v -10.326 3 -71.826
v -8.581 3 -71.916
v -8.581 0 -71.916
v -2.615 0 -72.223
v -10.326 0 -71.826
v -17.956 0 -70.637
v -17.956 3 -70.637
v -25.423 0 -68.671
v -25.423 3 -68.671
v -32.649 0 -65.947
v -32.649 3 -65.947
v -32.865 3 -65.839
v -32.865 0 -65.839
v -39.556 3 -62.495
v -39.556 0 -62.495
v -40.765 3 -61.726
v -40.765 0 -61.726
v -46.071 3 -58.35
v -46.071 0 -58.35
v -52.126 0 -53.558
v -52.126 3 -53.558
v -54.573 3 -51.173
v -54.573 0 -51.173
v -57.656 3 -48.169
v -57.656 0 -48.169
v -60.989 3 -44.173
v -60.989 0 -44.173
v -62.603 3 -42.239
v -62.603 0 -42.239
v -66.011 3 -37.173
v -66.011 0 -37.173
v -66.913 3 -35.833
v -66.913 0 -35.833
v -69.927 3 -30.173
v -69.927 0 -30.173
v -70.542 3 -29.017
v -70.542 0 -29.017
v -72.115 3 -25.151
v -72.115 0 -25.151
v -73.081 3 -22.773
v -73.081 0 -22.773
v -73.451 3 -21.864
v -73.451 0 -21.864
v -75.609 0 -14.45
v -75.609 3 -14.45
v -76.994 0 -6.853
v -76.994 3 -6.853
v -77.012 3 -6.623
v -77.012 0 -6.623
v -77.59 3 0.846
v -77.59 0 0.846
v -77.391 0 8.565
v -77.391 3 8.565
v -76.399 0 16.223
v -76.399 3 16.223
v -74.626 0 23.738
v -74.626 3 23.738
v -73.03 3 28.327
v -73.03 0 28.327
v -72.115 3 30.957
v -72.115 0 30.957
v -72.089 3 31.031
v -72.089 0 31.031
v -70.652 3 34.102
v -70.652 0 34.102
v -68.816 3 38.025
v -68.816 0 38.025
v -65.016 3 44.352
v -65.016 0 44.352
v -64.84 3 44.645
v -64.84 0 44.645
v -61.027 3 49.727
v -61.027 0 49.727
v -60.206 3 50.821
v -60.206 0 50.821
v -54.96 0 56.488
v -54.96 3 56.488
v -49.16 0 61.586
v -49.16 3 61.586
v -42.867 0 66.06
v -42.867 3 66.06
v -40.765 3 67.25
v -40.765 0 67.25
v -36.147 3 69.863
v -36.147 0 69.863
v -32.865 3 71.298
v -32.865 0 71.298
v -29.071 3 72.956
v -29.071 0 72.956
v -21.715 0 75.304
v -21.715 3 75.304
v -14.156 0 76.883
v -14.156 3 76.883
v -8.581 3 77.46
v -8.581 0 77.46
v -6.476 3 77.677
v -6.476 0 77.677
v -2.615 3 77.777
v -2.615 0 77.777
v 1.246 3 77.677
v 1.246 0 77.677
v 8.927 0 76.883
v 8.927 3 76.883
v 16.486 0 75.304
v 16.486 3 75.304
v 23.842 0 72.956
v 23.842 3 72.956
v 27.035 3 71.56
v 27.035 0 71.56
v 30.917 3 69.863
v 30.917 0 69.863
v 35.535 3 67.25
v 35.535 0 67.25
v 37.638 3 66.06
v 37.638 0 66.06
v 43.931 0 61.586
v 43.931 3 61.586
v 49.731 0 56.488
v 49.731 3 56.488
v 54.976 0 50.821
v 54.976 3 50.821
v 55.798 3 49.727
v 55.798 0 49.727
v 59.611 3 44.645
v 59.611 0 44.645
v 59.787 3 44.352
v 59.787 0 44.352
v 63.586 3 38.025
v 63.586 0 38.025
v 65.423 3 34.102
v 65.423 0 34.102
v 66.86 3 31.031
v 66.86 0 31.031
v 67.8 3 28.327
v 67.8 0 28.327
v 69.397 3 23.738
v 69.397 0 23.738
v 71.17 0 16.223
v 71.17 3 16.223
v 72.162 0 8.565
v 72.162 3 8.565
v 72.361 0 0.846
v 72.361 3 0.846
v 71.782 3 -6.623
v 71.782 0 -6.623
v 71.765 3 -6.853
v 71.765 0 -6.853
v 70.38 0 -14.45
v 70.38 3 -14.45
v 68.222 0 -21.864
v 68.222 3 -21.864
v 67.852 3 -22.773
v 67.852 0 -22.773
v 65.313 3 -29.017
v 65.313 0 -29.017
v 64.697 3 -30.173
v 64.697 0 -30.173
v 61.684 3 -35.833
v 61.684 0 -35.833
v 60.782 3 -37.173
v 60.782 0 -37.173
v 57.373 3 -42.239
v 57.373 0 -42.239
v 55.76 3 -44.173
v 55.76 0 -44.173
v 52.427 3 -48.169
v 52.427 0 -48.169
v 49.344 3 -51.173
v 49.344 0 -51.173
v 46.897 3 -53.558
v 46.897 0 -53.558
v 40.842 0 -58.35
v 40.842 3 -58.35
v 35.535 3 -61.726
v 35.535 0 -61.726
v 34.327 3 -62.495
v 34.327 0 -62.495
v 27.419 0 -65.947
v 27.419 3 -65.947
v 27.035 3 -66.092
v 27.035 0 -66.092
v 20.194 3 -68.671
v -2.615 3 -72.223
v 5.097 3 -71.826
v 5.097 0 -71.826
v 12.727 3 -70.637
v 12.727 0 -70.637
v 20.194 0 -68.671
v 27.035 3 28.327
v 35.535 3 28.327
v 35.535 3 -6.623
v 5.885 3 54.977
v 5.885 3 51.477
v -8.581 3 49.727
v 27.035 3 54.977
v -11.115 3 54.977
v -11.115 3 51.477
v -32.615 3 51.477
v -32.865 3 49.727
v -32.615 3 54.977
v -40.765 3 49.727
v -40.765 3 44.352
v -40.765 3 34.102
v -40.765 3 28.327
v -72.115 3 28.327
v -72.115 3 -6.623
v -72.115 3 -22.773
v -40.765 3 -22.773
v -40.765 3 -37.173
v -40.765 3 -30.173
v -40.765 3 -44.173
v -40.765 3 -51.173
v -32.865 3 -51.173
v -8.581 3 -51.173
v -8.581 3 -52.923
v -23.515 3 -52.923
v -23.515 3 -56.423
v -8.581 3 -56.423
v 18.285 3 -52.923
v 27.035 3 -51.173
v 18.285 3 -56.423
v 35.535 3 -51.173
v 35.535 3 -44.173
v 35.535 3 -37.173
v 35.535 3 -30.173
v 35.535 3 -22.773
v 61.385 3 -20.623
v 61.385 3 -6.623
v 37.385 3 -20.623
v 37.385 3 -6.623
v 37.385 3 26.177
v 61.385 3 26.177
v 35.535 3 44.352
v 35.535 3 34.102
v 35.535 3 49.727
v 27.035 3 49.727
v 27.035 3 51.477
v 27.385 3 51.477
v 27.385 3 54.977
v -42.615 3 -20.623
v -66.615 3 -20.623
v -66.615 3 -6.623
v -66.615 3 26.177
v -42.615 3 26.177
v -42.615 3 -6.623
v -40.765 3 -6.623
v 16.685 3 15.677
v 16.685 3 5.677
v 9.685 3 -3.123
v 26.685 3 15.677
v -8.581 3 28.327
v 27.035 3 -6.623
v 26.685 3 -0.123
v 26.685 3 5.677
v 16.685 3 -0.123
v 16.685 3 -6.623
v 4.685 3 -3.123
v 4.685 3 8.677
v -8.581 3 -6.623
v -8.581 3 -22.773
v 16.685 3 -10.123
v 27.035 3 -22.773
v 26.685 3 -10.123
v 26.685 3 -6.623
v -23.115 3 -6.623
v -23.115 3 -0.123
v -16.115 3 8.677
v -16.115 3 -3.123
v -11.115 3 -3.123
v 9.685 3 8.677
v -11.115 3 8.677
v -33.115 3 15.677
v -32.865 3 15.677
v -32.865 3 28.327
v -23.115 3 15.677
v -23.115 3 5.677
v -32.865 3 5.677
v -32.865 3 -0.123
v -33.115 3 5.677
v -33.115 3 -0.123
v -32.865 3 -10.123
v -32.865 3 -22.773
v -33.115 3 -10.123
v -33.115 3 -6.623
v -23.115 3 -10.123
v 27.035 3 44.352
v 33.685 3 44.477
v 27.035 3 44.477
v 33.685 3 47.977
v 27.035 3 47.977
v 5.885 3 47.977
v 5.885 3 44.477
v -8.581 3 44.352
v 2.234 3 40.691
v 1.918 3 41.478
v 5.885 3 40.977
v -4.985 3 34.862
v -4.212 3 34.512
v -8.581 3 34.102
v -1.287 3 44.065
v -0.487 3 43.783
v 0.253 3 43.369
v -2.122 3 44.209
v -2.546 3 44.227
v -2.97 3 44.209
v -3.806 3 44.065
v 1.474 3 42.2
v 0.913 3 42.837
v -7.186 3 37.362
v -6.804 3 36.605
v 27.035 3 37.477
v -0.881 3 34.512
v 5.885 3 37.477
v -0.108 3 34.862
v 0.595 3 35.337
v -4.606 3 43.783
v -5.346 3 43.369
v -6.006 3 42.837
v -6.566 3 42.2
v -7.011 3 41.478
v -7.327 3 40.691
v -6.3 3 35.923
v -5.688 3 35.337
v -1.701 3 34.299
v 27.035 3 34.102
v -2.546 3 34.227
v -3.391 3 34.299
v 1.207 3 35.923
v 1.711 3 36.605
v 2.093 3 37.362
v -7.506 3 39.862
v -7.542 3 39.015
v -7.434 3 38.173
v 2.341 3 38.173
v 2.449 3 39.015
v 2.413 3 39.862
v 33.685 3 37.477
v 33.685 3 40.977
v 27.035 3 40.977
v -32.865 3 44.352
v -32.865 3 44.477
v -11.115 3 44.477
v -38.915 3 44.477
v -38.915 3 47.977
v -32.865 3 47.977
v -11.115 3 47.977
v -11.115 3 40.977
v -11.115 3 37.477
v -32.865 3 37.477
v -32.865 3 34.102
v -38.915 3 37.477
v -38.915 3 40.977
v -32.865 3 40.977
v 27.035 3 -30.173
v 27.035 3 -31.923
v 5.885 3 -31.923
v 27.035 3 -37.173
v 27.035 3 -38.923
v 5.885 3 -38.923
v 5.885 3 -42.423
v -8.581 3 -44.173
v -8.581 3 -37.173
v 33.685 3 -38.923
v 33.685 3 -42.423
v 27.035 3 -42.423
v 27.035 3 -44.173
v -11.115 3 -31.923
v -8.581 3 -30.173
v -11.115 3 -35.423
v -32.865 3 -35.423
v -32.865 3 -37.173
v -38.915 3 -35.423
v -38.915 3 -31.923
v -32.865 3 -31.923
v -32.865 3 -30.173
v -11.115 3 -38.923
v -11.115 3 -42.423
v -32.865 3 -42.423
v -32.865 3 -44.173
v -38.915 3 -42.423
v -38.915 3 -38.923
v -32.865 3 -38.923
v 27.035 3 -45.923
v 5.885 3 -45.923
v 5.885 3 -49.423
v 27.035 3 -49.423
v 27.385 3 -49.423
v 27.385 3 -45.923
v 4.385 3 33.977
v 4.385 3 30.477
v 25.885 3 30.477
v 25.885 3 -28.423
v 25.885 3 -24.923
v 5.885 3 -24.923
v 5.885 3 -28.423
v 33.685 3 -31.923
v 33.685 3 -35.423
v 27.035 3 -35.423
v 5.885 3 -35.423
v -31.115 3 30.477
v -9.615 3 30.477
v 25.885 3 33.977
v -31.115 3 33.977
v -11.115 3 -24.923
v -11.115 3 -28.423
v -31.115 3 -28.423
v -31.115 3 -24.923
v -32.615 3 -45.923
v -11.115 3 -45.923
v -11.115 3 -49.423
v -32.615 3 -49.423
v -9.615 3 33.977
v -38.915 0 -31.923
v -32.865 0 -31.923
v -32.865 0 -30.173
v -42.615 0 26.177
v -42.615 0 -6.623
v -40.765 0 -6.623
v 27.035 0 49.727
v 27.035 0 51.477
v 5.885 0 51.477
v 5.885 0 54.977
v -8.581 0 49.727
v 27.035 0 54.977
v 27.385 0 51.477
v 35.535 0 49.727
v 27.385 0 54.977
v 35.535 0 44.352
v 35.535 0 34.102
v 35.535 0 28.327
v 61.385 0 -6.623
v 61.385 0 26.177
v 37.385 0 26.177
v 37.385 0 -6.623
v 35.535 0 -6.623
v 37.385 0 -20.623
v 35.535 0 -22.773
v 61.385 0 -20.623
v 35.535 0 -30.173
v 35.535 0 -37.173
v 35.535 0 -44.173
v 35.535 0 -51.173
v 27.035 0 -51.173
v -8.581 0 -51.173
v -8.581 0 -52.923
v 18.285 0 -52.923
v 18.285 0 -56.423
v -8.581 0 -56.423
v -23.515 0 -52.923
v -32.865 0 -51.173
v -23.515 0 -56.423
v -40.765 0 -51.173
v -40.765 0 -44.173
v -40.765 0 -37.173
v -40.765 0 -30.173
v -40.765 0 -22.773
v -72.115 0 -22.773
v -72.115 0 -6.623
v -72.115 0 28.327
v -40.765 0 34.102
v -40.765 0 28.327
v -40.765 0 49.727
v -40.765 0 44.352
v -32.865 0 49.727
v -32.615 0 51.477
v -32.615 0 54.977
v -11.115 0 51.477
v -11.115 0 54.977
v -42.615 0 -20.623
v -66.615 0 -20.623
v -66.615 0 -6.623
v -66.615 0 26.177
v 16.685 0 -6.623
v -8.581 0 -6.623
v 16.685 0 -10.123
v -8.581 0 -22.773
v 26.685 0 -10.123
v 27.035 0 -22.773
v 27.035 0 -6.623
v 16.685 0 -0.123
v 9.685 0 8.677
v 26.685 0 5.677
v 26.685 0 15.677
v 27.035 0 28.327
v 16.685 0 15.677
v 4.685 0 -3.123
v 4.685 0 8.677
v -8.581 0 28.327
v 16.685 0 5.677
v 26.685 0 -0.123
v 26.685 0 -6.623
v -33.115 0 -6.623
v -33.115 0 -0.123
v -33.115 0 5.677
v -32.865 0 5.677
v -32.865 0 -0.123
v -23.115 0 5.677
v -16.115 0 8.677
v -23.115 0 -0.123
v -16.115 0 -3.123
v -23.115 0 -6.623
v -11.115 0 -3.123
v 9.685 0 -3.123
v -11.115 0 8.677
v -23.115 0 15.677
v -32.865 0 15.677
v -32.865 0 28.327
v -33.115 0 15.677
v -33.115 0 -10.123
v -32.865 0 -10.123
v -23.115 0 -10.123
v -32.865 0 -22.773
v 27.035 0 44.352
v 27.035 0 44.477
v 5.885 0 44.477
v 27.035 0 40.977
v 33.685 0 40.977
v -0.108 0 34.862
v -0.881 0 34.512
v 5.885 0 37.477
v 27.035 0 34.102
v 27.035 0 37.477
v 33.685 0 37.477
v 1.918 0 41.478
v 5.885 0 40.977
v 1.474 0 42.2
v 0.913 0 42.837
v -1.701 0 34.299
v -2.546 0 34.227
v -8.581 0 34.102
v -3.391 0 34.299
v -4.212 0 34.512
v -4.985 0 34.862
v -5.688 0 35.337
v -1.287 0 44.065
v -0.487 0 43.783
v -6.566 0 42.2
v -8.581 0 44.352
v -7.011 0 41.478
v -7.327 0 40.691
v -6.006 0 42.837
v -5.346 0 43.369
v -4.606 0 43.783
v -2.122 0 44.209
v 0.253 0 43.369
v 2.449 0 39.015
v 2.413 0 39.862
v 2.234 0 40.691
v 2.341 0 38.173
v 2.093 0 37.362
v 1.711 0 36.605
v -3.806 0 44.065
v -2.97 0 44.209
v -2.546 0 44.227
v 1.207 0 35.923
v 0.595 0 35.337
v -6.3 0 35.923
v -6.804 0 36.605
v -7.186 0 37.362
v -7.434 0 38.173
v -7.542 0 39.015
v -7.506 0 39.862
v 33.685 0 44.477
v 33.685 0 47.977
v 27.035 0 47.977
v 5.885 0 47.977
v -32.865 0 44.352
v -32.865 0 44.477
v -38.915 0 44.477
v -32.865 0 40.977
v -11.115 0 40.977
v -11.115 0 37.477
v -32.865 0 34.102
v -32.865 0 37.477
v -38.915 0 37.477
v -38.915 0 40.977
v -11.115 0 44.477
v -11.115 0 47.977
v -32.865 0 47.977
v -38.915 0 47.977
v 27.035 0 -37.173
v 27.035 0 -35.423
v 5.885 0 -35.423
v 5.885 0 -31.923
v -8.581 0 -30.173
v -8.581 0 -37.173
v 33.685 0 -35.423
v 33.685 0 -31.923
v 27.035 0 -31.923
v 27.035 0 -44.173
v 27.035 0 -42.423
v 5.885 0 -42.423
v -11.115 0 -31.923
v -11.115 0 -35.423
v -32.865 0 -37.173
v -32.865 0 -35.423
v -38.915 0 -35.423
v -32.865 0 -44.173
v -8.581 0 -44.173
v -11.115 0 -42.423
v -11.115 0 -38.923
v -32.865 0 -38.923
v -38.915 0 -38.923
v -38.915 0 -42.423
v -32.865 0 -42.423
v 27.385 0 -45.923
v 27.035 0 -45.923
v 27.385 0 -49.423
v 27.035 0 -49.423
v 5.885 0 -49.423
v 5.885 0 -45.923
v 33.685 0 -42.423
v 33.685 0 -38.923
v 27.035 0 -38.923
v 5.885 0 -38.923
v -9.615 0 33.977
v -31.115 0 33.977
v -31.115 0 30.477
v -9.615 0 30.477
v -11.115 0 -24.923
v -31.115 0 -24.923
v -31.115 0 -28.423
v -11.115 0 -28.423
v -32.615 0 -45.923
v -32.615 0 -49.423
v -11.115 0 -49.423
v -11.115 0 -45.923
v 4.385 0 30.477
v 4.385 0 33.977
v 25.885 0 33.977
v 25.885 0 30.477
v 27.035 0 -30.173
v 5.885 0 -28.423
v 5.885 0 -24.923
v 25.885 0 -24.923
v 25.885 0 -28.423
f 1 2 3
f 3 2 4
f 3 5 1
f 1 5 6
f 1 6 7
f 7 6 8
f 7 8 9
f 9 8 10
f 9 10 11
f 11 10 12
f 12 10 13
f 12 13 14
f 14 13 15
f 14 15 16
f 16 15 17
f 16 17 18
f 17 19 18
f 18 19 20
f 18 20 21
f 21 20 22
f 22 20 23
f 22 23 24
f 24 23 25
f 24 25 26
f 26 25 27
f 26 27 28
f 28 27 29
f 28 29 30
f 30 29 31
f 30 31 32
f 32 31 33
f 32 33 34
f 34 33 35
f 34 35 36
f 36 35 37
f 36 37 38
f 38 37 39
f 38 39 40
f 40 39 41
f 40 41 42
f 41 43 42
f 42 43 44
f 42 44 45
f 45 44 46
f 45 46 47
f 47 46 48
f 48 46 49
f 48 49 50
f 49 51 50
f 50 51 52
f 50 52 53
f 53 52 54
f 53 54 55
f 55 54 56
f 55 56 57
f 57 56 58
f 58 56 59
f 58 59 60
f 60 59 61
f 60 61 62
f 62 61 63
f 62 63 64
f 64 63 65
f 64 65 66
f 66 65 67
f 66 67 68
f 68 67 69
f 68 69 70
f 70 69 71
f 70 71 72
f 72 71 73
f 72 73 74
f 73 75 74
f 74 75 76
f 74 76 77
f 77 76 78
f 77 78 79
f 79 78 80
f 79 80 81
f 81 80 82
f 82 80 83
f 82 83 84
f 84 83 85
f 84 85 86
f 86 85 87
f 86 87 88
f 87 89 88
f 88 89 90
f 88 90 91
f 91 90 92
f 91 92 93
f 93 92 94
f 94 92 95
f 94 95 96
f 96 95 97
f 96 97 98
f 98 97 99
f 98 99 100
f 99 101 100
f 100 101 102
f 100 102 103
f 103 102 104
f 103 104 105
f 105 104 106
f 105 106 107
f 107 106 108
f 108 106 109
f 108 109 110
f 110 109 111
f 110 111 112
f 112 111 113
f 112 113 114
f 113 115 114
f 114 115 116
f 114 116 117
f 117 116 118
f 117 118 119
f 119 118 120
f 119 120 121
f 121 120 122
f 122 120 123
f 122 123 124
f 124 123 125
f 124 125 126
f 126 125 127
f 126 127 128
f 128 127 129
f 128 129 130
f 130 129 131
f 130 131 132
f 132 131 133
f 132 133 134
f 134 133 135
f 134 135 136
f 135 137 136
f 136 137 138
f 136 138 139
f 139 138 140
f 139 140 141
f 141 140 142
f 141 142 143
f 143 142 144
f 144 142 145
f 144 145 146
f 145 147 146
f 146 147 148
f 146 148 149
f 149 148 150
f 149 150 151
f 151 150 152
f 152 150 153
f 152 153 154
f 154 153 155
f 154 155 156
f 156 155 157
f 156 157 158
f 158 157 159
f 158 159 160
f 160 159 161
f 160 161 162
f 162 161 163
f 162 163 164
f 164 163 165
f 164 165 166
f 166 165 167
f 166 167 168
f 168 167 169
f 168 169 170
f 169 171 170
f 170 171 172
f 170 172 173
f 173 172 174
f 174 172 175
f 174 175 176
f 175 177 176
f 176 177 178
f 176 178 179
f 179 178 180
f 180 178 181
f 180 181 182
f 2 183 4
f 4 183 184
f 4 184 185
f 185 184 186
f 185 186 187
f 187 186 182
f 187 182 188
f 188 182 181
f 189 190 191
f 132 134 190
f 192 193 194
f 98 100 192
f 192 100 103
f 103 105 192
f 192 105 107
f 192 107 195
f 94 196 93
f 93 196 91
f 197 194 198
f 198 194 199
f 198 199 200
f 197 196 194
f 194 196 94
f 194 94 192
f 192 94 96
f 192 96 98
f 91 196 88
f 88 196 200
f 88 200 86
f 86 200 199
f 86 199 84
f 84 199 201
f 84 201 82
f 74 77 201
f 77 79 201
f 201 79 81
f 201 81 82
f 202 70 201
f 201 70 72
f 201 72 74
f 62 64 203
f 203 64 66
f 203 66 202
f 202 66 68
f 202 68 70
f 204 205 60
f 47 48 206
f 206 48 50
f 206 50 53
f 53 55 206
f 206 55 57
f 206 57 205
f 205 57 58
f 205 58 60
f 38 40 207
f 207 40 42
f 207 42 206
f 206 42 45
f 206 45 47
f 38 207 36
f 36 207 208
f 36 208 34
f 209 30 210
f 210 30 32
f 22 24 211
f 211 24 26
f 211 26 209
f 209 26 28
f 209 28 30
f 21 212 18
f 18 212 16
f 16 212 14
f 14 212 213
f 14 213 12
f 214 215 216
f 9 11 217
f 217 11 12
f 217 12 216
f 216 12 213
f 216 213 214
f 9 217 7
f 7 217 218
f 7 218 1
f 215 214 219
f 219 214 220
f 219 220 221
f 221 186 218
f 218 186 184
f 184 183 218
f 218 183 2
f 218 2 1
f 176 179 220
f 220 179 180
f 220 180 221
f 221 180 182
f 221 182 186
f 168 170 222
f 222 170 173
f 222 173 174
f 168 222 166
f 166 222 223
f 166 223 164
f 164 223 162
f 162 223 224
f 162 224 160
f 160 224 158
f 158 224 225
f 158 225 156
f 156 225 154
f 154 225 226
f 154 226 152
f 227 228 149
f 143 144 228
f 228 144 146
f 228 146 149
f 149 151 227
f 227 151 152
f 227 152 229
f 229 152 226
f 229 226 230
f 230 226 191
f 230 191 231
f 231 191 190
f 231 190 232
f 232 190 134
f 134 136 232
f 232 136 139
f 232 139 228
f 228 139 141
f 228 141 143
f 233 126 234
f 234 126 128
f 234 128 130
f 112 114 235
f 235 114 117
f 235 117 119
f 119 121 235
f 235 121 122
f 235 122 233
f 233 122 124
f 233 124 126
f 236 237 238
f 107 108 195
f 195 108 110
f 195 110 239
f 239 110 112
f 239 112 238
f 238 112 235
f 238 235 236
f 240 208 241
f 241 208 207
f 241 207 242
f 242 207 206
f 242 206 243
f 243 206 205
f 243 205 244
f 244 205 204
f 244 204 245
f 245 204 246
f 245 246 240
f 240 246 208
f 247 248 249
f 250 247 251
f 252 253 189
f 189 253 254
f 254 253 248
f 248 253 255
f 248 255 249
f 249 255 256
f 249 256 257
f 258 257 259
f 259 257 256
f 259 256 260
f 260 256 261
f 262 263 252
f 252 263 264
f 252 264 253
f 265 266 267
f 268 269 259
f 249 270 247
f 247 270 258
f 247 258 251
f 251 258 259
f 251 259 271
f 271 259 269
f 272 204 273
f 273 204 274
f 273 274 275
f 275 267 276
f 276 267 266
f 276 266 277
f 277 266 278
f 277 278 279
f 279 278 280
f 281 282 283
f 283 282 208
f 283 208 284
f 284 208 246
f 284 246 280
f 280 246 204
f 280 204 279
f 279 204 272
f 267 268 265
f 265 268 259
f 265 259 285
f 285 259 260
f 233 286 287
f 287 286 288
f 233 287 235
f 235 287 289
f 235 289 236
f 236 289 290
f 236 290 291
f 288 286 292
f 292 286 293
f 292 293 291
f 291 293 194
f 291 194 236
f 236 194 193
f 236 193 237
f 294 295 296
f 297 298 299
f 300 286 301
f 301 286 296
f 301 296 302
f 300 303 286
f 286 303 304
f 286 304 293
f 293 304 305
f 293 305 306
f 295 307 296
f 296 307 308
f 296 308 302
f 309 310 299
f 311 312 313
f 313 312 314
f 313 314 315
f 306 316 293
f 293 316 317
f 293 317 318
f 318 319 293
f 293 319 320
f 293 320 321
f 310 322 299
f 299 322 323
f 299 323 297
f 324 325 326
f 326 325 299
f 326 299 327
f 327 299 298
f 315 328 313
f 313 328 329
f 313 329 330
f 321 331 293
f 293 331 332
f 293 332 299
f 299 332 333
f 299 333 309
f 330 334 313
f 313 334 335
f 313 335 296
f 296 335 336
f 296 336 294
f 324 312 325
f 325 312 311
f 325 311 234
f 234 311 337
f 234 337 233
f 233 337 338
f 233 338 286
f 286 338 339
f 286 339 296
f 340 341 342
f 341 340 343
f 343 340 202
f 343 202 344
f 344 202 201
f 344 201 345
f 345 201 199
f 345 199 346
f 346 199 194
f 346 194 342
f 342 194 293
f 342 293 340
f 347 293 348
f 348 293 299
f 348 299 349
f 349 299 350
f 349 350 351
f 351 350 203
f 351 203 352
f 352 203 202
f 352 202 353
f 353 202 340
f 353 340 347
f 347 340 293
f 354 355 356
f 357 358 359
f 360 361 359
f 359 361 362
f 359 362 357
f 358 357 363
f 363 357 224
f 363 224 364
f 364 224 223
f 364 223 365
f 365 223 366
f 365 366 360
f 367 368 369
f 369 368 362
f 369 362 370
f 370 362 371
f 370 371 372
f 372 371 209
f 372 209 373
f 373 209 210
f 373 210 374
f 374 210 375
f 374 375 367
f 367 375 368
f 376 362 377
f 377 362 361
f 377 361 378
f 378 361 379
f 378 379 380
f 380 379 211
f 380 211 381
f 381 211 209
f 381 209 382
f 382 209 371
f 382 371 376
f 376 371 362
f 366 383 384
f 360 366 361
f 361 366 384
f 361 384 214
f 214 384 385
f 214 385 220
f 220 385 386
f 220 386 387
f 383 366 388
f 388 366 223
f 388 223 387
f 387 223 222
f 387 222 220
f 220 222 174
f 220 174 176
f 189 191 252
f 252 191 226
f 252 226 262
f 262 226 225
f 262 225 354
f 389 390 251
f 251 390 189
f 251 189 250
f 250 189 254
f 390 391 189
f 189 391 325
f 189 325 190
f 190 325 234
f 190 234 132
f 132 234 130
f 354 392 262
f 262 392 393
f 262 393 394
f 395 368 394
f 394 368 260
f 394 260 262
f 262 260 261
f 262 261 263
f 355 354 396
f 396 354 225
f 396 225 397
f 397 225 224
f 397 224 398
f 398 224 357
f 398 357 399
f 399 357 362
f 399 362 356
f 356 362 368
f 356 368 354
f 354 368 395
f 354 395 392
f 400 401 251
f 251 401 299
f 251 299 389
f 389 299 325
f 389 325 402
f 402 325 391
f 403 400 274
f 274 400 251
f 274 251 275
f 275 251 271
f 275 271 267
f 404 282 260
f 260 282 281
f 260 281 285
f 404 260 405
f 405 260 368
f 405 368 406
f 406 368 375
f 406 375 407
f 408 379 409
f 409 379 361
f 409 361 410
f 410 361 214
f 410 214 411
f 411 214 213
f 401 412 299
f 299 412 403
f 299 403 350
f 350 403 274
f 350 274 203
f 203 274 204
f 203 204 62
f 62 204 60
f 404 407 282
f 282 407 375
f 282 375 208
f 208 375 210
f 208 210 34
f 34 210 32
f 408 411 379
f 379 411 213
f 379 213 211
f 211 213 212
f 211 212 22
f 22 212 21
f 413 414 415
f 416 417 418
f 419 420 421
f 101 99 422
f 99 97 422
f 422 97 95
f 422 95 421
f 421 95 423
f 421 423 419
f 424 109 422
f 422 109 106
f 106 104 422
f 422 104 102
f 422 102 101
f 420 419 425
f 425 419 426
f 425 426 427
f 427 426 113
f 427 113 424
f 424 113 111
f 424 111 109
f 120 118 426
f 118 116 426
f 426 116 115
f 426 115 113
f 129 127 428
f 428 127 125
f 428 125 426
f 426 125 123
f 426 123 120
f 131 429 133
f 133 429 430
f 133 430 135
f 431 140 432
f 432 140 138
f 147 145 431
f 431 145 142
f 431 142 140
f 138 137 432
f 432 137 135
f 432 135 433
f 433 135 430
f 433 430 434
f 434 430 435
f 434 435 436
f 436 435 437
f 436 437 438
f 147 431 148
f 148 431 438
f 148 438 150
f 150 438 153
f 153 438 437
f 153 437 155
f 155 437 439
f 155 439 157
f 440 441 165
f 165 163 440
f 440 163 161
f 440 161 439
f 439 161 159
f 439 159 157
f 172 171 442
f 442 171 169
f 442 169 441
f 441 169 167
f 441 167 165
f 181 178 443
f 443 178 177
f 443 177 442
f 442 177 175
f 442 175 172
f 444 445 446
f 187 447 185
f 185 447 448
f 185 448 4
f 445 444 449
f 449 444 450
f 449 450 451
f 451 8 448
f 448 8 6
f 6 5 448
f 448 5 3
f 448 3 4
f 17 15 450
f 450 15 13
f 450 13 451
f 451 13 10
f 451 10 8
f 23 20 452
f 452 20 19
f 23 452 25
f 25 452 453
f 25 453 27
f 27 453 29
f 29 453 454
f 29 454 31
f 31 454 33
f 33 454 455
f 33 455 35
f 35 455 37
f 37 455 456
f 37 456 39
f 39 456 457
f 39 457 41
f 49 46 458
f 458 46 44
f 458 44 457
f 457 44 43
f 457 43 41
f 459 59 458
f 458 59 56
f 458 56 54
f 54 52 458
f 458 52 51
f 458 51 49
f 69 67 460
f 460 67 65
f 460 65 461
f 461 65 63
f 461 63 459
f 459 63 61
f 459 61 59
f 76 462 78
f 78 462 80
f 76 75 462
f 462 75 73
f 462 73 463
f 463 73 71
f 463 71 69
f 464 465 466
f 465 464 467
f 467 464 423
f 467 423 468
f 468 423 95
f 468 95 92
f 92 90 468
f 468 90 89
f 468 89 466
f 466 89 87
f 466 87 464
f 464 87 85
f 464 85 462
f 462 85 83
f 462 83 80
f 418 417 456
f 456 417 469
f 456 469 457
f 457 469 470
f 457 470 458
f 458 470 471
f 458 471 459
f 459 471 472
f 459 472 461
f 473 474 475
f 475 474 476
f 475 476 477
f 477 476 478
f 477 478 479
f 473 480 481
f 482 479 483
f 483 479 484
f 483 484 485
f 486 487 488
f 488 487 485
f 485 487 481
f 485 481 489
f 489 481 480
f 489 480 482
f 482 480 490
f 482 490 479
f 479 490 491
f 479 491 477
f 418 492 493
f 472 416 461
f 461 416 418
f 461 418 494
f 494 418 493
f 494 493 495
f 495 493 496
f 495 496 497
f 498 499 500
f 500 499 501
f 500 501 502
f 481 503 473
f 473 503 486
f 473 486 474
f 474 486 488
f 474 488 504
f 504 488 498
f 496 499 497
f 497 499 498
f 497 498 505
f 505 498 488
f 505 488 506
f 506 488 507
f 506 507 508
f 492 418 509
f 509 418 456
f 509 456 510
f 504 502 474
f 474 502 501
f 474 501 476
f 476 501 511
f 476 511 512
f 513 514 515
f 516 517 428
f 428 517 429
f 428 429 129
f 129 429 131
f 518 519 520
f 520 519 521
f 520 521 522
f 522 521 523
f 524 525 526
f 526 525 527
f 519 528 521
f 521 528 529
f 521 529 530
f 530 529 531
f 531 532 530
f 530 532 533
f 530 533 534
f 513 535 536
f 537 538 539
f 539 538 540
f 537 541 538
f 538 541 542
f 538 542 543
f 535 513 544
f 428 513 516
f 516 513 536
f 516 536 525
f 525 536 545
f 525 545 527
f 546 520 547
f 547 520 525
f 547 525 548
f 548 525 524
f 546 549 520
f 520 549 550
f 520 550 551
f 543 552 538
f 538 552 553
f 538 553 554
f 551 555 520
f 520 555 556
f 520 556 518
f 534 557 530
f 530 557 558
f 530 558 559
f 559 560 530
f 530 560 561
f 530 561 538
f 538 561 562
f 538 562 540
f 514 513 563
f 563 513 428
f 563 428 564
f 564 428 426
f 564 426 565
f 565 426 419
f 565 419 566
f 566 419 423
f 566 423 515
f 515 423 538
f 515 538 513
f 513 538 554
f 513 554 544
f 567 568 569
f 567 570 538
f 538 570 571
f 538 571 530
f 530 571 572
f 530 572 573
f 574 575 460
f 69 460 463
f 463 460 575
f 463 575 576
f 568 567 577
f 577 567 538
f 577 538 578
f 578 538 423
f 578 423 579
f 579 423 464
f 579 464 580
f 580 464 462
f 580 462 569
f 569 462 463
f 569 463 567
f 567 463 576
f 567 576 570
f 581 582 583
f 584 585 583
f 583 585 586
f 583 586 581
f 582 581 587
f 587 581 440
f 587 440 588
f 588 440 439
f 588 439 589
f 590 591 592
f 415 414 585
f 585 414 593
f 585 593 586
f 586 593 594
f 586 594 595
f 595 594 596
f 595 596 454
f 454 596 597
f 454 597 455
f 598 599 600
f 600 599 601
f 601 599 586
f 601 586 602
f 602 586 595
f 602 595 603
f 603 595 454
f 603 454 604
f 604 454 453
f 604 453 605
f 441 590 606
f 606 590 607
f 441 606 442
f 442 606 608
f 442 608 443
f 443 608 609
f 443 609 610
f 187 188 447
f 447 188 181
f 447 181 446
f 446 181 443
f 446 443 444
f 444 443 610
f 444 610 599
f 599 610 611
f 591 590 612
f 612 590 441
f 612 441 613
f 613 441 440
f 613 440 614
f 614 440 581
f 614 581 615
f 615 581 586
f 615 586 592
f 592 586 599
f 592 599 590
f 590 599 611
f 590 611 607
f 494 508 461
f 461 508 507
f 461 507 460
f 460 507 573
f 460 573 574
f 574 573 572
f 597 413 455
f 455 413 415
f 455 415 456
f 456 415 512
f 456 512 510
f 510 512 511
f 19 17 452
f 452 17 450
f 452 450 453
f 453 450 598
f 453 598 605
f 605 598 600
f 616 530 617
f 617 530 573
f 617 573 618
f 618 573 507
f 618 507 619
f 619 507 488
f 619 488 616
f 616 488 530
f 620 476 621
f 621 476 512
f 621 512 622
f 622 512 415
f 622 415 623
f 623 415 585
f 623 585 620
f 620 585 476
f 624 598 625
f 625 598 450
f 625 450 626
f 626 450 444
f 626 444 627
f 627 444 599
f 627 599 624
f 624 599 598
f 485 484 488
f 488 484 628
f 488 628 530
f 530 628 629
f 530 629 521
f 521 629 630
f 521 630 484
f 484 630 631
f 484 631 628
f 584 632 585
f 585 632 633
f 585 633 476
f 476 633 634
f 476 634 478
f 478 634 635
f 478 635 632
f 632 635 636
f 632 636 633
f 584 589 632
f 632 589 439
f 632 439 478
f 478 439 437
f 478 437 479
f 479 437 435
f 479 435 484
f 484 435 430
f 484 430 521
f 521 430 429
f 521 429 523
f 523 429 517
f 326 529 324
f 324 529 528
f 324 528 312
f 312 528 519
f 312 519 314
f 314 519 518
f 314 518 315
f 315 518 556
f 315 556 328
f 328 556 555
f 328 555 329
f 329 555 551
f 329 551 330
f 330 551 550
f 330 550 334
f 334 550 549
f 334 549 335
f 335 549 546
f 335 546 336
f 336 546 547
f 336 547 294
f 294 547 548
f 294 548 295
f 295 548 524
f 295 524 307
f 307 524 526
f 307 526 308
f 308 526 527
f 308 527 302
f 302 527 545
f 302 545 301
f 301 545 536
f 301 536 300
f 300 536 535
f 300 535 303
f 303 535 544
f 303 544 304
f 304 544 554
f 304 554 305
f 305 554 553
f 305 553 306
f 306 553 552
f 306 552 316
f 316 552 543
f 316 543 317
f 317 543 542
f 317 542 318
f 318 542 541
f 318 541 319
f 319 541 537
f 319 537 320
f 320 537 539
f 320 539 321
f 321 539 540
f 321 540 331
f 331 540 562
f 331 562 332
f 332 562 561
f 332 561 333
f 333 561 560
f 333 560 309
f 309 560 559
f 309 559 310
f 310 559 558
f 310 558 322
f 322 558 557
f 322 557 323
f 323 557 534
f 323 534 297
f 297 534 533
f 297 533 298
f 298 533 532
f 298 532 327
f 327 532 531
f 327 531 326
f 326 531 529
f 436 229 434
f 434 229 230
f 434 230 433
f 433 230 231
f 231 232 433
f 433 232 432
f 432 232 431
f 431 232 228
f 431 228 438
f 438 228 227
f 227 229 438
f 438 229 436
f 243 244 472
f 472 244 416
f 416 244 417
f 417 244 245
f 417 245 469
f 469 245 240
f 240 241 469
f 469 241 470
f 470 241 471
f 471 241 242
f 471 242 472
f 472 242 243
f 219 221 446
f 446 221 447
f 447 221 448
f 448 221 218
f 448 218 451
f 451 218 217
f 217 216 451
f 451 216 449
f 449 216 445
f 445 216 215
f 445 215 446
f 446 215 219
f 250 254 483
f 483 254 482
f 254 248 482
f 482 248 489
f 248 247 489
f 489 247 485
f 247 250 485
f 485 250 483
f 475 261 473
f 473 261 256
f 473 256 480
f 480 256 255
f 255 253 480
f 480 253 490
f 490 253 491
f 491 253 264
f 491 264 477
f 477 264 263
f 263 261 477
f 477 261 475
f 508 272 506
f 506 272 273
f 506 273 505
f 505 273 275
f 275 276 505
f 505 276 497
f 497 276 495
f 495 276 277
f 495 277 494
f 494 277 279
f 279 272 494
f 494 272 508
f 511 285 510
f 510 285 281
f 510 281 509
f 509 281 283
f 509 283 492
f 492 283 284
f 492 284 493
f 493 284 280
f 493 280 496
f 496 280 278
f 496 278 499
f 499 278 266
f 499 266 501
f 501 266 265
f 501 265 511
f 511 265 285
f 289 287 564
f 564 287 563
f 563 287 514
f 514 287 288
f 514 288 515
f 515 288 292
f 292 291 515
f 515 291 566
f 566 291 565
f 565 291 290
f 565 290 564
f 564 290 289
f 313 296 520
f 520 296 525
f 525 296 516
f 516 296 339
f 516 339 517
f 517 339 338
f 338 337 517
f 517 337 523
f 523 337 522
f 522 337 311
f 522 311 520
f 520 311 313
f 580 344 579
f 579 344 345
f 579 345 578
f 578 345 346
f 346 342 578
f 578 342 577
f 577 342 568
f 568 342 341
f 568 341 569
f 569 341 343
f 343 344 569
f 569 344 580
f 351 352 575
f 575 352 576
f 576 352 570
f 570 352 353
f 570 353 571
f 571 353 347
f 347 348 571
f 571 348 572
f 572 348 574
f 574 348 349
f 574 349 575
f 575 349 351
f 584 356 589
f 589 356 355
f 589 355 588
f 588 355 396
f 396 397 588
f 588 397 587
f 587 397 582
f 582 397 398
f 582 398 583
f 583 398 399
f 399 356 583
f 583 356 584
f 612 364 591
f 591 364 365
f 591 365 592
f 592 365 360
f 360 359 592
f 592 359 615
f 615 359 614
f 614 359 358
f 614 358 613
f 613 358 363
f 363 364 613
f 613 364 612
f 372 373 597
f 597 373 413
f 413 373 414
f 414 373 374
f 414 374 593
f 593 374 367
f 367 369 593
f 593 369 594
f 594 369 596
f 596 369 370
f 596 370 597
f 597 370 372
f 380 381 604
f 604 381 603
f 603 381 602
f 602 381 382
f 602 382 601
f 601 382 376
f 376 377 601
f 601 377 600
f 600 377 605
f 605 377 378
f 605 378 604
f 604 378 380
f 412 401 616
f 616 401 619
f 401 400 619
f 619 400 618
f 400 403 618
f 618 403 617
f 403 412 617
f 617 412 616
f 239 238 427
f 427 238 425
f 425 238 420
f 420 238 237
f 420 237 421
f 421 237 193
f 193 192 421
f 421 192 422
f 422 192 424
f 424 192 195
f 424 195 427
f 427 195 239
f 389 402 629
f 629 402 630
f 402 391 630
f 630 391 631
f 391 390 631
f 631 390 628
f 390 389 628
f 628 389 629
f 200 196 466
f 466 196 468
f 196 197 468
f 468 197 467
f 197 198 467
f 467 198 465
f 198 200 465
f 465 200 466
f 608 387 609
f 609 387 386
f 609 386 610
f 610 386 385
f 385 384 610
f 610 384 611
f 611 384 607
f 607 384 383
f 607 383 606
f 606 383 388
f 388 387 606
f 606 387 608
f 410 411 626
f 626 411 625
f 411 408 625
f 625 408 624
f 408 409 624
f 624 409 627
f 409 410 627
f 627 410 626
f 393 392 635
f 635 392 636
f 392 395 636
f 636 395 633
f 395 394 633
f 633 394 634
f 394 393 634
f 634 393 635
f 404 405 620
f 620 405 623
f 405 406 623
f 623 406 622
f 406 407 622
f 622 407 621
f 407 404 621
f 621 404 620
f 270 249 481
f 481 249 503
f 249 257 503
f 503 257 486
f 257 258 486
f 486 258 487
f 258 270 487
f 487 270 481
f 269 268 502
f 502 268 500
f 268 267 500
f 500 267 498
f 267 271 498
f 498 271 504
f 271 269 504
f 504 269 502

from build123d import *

# Parameters (mm, degrees)
CROQUIS1_R              = 75
CROQUIS1_R_2            = 5
CROQUIS1_W              = 24
CROQUIS1_H              = 46.8
CROQUIS1_W_2            = 41.8
CROQUIS1_H_2            = 3.5
CROQUIS1_W_3            = 10
CROQUIS1_H_3            = 10
CROQUIS1_W_4            = 27.8
CROQUIS1_W_5            = 21.5
CROQUIS1_W_6            = 20
CROQUIS1_W_7            = 5
CROQUIS1_H_4            = 11.8
SALIENTE_EXTRUIR1_DEPTH = 3


with BuildPart() as part:
    # Croquis1 → Saliente-Extruir1 (new body)
    with BuildSketch(Plane.XZ):
        with Locations(Location((-2.614604162, 2.776770239, 0), (0, 0, 270))):
            Circle(CROQUIS1_R)
        with Locations(Location((-2.546416873, 39.226770239, 0), (0, 0, 270))):
            Circle(CROQUIS1_R_2, mode=Mode.SUBTRACT)
        with Locations((49.385395838, 2.776770239)):
            Rectangle(CROQUIS1_W, CROQUIS1_H, mode=Mode.SUBTRACT)
        with Locations((-54.614604162, 2.776770239)):
            Rectangle(CROQUIS1_W, CROQUIS1_H, mode=Mode.SUBTRACT)
        with Locations((-2.614604162, -54.673229761)):
            Rectangle(CROQUIS1_W_2, CROQUIS1_H_2, mode=Mode.SUBTRACT)
        with Locations((21.685395838, 10.676770239)):
            Rectangle(CROQUIS1_W_3, CROQUIS1_H_3, mode=Mode.SUBTRACT)
        with Locations((21.685395838, -5.123229761)):
            Rectangle(CROQUIS1_W_3, CROQUIS1_H_3, mode=Mode.SUBTRACT)
        with Locations((-28.114604162, 10.676770239)):
            Rectangle(CROQUIS1_W_3, CROQUIS1_H_3, mode=Mode.SUBTRACT)
        with Locations((-28.114604162, -5.123229761)):
            Rectangle(CROQUIS1_W_3, CROQUIS1_H_3, mode=Mode.SUBTRACT)
        with Locations((19.785395838, 46.226770239)):
            Rectangle(CROQUIS1_W_4, CROQUIS1_H_2, mode=Mode.SUBTRACT)
        with Locations((19.785395838, 39.226770239)):
            Rectangle(CROQUIS1_W_4, CROQUIS1_H_2, mode=Mode.SUBTRACT)
        with Locations((-25.014604162, 46.226770239)):
            Rectangle(CROQUIS1_W_4, CROQUIS1_H_2, mode=Mode.SUBTRACT)
        with Locations((-25.014604162, 39.226770239)):
            Rectangle(CROQUIS1_W_4, CROQUIS1_H_2, mode=Mode.SUBTRACT)
        with Locations((19.785395838, -33.673229761)):
            Rectangle(CROQUIS1_W_4, CROQUIS1_H_2, mode=Mode.SUBTRACT)
        with Locations((19.785395838, -40.673229761)):
            Rectangle(CROQUIS1_W_4, CROQUIS1_H_2, mode=Mode.SUBTRACT)
        with Locations((-25.014604162, -33.673229761)):
            Rectangle(CROQUIS1_W_4, CROQUIS1_H_2, mode=Mode.SUBTRACT)
        with Locations((-25.014604162, -40.673229761)):
            Rectangle(CROQUIS1_W_4, CROQUIS1_H_2, mode=Mode.SUBTRACT)
        with Locations((-20.364604162, 32.226770239)):
            Rectangle(CROQUIS1_W_5, CROQUIS1_H_2, mode=Mode.SUBTRACT)
        with Locations((16.635395838, 53.226770239)):
            Rectangle(CROQUIS1_W_5, CROQUIS1_H_2, mode=Mode.SUBTRACT)
        with Locations((15.135395838, 32.226770239)):
            Rectangle(CROQUIS1_W_5, CROQUIS1_H_2, mode=Mode.SUBTRACT)
        with Locations((-21.864604162, 53.226770239)):
            Rectangle(CROQUIS1_W_5, CROQUIS1_H_2, mode=Mode.SUBTRACT)
        with Locations((16.635395838, -47.673229761)):
            Rectangle(CROQUIS1_W_5, CROQUIS1_H_2, mode=Mode.SUBTRACT)
        with Locations((-21.864604162, -47.673229761)):
            Rectangle(CROQUIS1_W_5, CROQUIS1_H_2, mode=Mode.SUBTRACT)
        with Locations((15.885395838, -26.673229761)):
            Rectangle(CROQUIS1_W_6, CROQUIS1_H_2, mode=Mode.SUBTRACT)
        with Locations((-21.114604162, -26.673229761)):
            Rectangle(CROQUIS1_W_6, CROQUIS1_H_2, mode=Mode.SUBTRACT)
        with Locations((7.185395838, 2.776770239)):
            Rectangle(CROQUIS1_W_7, CROQUIS1_H_4, mode=Mode.SUBTRACT)
        with Locations((-13.614604162, 2.776770239)):
            Rectangle(CROQUIS1_W_7, CROQUIS1_H_4, mode=Mode.SUBTRACT)
    extrude(amount=-SALIENTE_EXTRUIR1_DEPTH)


solid = part.part
